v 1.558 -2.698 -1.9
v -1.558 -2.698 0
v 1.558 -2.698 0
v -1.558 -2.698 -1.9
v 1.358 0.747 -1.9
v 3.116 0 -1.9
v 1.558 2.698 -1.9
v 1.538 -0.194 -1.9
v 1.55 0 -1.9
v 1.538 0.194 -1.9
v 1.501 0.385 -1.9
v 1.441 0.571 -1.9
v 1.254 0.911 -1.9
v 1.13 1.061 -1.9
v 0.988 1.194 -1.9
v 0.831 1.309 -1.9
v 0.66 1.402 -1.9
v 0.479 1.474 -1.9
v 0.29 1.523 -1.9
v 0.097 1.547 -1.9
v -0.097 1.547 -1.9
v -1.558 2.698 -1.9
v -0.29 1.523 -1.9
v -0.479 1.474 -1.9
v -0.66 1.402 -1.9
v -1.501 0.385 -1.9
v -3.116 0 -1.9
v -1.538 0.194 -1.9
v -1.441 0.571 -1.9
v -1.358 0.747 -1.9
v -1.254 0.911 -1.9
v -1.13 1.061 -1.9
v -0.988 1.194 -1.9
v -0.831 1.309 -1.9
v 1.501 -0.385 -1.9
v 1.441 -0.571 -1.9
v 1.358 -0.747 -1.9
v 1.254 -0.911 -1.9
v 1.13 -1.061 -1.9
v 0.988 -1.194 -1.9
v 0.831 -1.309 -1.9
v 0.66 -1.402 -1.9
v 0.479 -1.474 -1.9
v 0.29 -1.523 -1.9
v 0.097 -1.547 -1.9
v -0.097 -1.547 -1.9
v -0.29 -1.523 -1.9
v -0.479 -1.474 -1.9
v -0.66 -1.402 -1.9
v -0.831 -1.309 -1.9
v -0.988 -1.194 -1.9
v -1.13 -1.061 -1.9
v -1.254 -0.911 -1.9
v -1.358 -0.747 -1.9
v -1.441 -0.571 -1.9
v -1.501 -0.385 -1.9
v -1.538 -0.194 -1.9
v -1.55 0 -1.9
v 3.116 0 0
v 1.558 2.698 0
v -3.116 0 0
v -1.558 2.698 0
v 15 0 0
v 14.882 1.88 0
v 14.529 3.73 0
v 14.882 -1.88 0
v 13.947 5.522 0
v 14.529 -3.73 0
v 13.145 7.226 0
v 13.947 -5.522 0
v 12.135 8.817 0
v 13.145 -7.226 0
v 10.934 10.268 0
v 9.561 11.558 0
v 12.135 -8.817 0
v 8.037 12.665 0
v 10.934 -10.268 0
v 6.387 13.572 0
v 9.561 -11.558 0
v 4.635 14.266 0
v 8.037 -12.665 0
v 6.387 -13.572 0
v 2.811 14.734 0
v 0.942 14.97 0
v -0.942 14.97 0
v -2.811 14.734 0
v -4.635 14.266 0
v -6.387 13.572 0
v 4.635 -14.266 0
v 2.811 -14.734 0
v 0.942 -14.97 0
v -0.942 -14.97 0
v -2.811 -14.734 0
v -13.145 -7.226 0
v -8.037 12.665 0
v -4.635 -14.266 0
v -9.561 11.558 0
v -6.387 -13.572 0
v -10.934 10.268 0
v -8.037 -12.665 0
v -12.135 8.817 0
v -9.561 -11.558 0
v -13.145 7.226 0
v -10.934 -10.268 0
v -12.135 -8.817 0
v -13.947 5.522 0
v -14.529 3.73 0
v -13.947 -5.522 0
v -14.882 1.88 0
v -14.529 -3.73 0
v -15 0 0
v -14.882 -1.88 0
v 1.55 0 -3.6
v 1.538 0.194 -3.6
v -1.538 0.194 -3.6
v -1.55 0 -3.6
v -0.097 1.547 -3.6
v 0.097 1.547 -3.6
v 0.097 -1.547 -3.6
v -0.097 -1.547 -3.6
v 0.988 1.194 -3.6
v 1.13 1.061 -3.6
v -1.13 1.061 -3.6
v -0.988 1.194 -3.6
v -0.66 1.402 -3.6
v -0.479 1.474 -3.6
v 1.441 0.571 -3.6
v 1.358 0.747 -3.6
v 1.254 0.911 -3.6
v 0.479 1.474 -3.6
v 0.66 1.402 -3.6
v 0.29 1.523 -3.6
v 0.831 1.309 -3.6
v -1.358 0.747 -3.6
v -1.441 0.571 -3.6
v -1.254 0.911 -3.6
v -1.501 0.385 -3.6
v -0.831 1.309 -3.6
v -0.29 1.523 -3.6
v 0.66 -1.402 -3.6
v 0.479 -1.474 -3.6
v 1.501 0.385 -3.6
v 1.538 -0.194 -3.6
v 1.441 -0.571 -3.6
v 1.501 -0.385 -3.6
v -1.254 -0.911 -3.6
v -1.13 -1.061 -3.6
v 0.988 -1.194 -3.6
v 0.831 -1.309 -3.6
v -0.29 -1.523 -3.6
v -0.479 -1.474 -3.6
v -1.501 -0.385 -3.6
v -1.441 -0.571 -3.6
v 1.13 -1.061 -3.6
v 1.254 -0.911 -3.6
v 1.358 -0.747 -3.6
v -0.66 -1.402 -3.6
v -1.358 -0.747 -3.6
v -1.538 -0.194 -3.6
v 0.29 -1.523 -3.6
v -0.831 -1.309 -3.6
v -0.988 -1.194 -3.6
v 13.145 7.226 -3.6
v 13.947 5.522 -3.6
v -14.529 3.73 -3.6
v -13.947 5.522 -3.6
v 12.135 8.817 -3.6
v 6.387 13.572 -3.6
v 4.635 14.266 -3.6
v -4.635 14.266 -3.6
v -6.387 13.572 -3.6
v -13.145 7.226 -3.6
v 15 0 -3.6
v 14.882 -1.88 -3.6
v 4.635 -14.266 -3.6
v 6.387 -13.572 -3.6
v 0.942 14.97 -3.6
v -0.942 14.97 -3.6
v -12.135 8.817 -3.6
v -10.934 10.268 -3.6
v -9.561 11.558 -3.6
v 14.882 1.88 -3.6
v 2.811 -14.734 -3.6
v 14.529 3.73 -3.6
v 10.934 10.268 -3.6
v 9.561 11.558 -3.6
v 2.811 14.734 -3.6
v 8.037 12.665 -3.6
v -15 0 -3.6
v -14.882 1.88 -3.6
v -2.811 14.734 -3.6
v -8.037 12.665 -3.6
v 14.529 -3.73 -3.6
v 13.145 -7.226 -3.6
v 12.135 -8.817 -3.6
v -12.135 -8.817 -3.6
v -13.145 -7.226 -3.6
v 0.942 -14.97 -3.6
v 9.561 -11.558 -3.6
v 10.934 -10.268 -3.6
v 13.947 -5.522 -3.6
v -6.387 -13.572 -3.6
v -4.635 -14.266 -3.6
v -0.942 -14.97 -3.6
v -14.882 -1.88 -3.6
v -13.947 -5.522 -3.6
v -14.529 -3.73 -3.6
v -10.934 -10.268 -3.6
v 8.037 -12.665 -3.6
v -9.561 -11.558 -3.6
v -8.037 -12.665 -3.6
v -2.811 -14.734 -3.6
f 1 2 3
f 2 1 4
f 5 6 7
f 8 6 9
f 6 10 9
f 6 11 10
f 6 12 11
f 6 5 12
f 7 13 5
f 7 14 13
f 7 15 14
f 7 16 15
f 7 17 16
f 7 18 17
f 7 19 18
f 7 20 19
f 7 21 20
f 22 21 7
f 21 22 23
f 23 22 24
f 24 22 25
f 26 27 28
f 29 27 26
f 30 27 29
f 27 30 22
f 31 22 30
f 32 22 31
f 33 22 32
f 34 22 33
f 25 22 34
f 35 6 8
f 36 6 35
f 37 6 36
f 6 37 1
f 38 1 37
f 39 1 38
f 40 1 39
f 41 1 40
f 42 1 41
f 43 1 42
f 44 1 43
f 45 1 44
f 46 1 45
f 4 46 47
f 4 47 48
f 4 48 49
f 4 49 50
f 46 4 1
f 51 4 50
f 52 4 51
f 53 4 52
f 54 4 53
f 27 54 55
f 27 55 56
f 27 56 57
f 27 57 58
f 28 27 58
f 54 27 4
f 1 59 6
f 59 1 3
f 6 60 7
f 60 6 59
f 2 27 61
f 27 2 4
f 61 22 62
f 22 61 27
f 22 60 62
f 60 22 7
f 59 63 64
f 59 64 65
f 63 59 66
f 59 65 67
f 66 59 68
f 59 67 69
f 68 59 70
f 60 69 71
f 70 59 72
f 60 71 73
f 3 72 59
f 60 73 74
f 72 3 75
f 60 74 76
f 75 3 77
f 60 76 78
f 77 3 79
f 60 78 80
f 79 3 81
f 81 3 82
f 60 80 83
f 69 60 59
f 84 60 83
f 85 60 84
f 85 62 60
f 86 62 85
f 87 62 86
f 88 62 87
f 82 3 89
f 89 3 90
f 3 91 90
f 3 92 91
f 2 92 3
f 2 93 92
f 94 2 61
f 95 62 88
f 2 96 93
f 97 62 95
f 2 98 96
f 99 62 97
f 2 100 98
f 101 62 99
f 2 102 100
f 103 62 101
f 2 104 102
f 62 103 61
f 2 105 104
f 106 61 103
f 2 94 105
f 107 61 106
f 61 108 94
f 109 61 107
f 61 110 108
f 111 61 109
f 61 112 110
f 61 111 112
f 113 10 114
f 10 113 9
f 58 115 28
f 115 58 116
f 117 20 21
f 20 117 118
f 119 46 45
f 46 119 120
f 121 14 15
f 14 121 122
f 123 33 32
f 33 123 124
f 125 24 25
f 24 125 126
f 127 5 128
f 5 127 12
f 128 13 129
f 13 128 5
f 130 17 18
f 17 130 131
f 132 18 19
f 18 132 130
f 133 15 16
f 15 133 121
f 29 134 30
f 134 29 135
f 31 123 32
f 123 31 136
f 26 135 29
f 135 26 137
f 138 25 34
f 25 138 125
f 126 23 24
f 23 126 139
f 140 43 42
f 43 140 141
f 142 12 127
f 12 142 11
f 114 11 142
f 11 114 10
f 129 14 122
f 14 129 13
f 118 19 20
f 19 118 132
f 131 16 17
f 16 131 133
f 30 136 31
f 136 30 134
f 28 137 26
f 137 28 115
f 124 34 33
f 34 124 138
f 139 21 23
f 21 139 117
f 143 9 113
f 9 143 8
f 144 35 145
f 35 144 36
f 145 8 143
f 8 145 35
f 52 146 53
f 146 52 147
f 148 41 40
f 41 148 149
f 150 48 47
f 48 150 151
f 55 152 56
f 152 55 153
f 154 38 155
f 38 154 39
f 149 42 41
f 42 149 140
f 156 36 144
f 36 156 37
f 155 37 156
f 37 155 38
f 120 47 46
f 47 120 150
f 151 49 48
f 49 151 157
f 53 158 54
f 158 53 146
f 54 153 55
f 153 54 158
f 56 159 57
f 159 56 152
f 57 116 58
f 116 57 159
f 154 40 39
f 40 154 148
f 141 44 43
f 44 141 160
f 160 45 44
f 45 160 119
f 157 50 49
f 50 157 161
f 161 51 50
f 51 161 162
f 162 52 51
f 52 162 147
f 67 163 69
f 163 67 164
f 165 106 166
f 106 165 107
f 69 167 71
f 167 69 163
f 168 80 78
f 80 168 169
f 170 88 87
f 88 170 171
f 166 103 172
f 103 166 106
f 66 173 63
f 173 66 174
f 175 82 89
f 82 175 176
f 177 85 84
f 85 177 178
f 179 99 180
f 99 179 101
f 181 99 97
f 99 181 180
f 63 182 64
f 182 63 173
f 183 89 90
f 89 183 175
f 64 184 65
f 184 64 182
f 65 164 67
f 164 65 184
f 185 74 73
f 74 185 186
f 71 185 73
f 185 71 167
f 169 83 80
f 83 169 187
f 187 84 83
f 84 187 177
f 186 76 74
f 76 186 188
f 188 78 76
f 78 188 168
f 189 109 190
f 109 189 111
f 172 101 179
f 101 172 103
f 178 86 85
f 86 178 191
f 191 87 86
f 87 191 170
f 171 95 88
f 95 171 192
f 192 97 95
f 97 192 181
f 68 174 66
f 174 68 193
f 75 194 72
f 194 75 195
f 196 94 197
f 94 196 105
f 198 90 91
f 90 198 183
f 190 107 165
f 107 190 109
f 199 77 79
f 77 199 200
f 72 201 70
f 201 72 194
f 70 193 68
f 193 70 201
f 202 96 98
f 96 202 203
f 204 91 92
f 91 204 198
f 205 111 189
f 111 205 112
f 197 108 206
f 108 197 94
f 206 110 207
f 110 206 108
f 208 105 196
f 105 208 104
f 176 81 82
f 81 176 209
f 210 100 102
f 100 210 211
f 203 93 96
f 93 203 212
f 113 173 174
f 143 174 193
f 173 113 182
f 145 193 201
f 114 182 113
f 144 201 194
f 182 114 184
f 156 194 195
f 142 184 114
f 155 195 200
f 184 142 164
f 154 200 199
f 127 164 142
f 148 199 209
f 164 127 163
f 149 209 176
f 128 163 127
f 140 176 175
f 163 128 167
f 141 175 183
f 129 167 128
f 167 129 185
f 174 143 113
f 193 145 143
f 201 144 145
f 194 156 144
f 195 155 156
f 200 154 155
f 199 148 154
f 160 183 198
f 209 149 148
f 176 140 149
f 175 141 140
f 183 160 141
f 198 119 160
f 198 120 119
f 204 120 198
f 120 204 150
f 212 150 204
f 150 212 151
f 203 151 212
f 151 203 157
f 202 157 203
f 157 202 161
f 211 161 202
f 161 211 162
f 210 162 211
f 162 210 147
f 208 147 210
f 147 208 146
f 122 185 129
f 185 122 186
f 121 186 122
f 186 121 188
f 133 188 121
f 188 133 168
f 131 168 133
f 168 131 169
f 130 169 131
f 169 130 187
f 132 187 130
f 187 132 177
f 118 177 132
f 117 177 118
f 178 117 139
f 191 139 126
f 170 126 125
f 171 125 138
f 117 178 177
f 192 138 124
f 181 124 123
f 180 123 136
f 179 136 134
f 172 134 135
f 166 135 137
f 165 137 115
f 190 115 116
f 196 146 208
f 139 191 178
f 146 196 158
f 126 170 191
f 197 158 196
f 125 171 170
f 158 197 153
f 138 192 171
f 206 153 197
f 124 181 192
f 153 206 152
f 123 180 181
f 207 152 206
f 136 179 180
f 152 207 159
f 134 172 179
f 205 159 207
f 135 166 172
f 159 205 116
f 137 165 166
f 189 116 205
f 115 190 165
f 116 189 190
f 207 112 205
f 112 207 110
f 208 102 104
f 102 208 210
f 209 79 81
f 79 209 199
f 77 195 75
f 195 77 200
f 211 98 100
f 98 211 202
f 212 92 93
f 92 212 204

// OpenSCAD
$fn = 50;

difference() {
	union() {
		translate(v = [0, 0, -3.6]) {
			cylinder(h = 3.6, r = 15.0);
		}
	}
	union() {
		translate(v = [0, 0, 0]) {
			rotate(a = [0, 0, 0]) {
				difference() {
					union() {
						translate(v = [0, 0, -1.9]) {
							linear_extrude(height = 1.9) {
								polygon(points = [[3.1158, 0.0], [1.5579000000000005, 2.698361953111554], [-1.5578999999999994, 2.6983619531115544], [-3.1158, 3.815754496783323e-16], [-1.5579000000000014, -2.6983619531115535], [1.557899999999998, -2.6983619531115552]]);
							}
						}
					}
					union();
				}
			}
		}
		#translate(v = [0, 0, -100.0]) {
			cylinder(h = 200, r = 1.55);
		}
	}
}
